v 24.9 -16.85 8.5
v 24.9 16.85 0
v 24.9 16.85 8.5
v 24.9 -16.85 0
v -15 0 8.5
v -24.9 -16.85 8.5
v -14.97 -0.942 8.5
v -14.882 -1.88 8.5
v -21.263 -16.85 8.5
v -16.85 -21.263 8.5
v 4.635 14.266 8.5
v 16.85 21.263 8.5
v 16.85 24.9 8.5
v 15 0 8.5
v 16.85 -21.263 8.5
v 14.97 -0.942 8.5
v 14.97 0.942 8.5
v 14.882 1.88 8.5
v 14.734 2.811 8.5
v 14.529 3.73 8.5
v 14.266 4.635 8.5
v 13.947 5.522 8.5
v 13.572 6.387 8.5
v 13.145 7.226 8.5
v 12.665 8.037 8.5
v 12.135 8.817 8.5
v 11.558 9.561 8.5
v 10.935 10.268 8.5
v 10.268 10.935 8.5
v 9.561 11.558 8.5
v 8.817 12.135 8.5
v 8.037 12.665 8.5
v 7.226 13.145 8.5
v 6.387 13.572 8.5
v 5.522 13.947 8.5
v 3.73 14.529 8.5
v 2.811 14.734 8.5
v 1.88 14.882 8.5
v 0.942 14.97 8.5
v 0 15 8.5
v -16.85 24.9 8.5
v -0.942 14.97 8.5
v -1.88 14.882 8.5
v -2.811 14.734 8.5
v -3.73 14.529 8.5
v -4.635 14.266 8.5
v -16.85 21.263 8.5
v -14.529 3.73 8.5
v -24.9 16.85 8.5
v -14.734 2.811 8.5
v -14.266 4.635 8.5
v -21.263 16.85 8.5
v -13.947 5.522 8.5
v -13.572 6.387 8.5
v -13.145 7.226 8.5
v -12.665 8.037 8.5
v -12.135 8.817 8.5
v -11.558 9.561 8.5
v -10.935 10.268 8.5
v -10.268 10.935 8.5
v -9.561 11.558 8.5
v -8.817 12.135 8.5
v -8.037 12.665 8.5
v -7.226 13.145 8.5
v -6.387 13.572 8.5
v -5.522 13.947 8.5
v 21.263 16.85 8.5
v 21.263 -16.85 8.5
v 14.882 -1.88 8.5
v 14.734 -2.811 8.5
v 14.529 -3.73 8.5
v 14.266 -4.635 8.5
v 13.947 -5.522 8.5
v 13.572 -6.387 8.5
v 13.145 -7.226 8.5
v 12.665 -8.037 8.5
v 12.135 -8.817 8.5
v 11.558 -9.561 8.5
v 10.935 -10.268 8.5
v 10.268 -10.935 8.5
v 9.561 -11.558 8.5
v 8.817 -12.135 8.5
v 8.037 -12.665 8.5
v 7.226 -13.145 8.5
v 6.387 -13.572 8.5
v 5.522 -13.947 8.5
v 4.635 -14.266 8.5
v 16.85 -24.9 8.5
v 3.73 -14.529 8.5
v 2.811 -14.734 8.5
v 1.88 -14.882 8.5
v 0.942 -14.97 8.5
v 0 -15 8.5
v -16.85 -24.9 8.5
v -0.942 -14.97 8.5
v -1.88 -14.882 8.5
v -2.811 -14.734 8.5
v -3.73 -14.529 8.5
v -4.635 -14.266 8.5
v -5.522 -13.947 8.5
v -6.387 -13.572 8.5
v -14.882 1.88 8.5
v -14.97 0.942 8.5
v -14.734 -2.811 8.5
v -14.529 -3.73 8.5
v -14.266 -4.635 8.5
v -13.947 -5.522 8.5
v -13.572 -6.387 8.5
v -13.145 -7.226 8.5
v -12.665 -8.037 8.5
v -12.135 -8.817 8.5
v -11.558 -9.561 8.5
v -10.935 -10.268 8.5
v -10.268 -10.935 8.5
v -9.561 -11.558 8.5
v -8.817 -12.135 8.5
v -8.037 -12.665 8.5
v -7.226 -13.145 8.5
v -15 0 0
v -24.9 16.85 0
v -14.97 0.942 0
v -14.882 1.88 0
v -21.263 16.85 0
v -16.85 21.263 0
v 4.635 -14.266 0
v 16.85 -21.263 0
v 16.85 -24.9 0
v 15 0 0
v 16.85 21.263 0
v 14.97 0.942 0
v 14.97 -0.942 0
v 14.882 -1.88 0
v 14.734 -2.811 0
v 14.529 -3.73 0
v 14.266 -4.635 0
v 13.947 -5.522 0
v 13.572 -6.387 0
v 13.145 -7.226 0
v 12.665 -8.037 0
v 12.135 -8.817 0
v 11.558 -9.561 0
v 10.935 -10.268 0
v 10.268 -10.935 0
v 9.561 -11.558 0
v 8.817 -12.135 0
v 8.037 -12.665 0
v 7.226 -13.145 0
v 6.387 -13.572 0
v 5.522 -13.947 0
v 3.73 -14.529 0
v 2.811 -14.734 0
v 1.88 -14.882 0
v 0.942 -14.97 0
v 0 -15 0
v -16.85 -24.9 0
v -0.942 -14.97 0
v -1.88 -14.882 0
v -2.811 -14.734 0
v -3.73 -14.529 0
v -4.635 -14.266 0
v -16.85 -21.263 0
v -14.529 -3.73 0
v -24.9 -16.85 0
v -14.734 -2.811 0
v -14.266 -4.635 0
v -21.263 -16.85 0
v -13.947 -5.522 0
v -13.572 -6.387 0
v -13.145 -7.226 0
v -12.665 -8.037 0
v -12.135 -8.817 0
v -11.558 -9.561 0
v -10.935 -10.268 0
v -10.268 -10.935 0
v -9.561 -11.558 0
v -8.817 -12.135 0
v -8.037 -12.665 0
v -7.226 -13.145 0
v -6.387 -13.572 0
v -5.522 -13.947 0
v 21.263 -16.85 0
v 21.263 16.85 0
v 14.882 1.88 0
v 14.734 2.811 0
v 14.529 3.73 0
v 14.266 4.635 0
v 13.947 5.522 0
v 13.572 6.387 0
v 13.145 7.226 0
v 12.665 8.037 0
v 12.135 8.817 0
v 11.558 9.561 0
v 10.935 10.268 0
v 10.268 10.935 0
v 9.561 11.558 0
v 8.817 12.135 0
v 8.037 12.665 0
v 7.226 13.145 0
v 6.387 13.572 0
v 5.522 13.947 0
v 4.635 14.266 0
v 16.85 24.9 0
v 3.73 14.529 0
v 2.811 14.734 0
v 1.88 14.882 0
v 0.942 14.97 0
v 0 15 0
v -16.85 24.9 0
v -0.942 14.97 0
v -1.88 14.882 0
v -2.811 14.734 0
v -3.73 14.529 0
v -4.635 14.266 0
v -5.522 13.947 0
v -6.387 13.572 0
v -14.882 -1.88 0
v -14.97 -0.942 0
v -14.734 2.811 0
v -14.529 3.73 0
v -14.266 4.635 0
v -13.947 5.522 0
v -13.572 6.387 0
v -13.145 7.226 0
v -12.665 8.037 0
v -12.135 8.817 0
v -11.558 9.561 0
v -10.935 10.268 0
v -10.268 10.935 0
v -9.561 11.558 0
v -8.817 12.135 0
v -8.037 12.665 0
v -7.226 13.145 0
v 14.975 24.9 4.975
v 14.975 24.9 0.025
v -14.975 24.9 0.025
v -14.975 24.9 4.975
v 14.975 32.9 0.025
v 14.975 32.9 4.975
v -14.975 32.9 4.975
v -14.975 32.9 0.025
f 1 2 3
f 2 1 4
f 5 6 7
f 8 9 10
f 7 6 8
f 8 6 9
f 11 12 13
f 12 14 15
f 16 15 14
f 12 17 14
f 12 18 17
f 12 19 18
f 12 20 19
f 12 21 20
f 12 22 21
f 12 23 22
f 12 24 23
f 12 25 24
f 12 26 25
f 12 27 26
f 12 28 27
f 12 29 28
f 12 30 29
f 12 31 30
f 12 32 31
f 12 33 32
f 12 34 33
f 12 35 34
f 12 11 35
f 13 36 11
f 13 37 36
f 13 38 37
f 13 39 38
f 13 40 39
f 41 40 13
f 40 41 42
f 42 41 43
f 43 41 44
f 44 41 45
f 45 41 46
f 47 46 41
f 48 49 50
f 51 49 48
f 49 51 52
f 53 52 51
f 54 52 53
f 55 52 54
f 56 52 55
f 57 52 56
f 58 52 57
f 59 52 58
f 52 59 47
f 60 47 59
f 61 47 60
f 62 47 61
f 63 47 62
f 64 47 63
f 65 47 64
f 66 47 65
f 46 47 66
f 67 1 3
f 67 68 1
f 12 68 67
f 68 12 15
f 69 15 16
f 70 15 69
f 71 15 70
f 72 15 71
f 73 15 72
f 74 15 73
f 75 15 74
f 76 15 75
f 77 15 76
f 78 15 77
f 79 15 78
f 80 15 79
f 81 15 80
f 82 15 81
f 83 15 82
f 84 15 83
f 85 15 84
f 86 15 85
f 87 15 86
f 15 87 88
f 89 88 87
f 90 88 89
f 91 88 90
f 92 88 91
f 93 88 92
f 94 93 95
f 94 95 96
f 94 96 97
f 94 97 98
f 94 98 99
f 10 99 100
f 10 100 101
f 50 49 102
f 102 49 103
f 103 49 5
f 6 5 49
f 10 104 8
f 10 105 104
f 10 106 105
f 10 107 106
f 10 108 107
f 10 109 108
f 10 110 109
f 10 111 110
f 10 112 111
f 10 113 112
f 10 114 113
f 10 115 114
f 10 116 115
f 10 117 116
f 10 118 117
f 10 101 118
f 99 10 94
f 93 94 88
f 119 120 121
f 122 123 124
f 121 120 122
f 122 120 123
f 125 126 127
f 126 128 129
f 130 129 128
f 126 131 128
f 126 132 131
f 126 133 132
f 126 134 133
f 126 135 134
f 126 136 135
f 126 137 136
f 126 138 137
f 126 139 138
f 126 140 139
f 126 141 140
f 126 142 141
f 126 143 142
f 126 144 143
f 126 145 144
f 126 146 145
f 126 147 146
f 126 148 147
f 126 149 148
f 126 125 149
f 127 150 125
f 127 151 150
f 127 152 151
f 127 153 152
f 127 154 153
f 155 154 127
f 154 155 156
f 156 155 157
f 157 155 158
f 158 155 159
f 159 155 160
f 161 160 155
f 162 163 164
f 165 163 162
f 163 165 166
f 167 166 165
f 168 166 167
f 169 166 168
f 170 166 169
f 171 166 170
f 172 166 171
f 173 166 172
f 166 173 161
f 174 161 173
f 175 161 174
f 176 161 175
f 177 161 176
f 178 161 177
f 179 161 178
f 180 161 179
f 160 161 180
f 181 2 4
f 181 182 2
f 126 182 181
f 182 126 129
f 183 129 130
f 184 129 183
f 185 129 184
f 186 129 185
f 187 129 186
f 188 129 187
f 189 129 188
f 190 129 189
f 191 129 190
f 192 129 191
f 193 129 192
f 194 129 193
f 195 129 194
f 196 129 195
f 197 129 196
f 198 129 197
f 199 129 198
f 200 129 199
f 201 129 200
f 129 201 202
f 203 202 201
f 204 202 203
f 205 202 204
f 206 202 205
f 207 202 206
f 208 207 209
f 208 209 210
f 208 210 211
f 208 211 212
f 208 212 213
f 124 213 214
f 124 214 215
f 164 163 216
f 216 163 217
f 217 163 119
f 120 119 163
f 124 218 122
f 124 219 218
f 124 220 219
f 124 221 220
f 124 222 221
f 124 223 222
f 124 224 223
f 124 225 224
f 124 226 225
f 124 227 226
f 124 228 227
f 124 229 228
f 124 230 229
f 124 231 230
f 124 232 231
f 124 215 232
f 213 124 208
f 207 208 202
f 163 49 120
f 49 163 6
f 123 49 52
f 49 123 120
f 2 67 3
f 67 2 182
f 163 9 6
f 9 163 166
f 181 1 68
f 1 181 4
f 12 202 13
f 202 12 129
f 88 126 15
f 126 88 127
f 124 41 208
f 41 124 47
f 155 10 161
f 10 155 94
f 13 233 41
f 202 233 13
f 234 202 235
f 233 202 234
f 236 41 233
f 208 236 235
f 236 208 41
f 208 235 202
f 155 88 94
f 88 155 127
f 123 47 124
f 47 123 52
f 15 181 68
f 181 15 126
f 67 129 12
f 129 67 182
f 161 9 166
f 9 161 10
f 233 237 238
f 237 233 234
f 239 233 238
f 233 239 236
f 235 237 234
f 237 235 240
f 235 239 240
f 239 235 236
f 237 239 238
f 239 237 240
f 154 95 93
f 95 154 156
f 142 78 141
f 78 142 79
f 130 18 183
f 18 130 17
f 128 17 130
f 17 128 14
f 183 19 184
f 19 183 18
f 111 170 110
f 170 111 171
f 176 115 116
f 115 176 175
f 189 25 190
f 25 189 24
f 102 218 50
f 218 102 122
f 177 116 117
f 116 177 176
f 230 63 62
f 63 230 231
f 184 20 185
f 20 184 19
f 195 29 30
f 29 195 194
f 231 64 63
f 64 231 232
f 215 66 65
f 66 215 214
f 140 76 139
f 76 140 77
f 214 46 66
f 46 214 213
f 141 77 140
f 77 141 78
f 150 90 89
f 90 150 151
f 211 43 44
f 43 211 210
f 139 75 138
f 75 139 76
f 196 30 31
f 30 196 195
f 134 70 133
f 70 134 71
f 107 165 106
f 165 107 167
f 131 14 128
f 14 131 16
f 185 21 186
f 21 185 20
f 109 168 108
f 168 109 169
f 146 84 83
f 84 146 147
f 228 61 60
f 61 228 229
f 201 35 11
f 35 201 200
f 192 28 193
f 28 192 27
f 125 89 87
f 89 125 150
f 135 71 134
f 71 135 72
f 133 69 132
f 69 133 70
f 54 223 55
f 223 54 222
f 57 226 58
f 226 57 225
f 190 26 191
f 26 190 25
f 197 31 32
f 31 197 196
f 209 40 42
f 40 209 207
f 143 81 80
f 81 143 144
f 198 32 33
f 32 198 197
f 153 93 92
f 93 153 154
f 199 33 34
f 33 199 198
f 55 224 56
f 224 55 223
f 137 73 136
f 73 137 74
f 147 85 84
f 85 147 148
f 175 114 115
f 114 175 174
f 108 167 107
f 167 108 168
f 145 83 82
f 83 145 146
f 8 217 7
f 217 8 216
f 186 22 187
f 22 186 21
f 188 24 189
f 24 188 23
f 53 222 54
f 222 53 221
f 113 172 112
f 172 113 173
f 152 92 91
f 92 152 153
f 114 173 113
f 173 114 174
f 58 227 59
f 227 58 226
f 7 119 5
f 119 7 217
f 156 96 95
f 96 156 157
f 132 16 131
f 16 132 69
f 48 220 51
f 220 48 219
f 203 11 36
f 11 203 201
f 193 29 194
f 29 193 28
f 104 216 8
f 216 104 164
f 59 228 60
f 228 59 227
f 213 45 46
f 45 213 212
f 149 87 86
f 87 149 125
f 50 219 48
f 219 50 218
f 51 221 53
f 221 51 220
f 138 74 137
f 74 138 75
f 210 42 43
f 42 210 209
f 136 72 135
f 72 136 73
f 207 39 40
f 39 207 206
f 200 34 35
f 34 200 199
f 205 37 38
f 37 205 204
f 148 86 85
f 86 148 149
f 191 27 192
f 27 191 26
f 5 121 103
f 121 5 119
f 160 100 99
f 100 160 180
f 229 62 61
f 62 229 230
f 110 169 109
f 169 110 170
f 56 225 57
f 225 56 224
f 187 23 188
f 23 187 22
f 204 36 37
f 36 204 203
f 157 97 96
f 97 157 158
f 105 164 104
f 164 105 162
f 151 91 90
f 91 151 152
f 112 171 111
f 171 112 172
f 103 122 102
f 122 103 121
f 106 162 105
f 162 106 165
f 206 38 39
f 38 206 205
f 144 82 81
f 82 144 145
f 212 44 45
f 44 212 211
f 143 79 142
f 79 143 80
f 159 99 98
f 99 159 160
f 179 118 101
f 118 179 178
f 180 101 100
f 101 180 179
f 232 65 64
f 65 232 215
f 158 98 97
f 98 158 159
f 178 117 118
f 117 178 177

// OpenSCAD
//Cube insert template

/* [Hiden] */
a = 49.8;
b = 33.6;
c = 6.28;
d = 53.8;
h = 8.5; //holder height

h_slot = 5;
w_slot = 30;

hole_d = 30;

IM_offset = 0.05;

module CubeInsert () {
    translate([0, 0, h/2])
    difference(){
        union() {   //basic insert design
            cube([a,b+2*IM_offset,h], center=true);
            cube([b+2*IM_offset,a,h], center=true);
            rotate(a=[0,0,45]){
                cube([c,d+2*IM_offset,h], center=true);
            }
            rotate(a=[0,0,-45]){
                cube([c,d+2*IM_offset,h], center=true);
            }
        }
    }
}

module stage_insert(){
    difference(){
        union(){
            CubeInsert();
            translate([0,8,h_slot/2]) cube([w_slot-IM_offset,a,h_slot-IM_offset], center=true);
        }
        cylinder(d = hole_d, h = 20, center=true, $fn=100);
    }
}

stage_insert();
